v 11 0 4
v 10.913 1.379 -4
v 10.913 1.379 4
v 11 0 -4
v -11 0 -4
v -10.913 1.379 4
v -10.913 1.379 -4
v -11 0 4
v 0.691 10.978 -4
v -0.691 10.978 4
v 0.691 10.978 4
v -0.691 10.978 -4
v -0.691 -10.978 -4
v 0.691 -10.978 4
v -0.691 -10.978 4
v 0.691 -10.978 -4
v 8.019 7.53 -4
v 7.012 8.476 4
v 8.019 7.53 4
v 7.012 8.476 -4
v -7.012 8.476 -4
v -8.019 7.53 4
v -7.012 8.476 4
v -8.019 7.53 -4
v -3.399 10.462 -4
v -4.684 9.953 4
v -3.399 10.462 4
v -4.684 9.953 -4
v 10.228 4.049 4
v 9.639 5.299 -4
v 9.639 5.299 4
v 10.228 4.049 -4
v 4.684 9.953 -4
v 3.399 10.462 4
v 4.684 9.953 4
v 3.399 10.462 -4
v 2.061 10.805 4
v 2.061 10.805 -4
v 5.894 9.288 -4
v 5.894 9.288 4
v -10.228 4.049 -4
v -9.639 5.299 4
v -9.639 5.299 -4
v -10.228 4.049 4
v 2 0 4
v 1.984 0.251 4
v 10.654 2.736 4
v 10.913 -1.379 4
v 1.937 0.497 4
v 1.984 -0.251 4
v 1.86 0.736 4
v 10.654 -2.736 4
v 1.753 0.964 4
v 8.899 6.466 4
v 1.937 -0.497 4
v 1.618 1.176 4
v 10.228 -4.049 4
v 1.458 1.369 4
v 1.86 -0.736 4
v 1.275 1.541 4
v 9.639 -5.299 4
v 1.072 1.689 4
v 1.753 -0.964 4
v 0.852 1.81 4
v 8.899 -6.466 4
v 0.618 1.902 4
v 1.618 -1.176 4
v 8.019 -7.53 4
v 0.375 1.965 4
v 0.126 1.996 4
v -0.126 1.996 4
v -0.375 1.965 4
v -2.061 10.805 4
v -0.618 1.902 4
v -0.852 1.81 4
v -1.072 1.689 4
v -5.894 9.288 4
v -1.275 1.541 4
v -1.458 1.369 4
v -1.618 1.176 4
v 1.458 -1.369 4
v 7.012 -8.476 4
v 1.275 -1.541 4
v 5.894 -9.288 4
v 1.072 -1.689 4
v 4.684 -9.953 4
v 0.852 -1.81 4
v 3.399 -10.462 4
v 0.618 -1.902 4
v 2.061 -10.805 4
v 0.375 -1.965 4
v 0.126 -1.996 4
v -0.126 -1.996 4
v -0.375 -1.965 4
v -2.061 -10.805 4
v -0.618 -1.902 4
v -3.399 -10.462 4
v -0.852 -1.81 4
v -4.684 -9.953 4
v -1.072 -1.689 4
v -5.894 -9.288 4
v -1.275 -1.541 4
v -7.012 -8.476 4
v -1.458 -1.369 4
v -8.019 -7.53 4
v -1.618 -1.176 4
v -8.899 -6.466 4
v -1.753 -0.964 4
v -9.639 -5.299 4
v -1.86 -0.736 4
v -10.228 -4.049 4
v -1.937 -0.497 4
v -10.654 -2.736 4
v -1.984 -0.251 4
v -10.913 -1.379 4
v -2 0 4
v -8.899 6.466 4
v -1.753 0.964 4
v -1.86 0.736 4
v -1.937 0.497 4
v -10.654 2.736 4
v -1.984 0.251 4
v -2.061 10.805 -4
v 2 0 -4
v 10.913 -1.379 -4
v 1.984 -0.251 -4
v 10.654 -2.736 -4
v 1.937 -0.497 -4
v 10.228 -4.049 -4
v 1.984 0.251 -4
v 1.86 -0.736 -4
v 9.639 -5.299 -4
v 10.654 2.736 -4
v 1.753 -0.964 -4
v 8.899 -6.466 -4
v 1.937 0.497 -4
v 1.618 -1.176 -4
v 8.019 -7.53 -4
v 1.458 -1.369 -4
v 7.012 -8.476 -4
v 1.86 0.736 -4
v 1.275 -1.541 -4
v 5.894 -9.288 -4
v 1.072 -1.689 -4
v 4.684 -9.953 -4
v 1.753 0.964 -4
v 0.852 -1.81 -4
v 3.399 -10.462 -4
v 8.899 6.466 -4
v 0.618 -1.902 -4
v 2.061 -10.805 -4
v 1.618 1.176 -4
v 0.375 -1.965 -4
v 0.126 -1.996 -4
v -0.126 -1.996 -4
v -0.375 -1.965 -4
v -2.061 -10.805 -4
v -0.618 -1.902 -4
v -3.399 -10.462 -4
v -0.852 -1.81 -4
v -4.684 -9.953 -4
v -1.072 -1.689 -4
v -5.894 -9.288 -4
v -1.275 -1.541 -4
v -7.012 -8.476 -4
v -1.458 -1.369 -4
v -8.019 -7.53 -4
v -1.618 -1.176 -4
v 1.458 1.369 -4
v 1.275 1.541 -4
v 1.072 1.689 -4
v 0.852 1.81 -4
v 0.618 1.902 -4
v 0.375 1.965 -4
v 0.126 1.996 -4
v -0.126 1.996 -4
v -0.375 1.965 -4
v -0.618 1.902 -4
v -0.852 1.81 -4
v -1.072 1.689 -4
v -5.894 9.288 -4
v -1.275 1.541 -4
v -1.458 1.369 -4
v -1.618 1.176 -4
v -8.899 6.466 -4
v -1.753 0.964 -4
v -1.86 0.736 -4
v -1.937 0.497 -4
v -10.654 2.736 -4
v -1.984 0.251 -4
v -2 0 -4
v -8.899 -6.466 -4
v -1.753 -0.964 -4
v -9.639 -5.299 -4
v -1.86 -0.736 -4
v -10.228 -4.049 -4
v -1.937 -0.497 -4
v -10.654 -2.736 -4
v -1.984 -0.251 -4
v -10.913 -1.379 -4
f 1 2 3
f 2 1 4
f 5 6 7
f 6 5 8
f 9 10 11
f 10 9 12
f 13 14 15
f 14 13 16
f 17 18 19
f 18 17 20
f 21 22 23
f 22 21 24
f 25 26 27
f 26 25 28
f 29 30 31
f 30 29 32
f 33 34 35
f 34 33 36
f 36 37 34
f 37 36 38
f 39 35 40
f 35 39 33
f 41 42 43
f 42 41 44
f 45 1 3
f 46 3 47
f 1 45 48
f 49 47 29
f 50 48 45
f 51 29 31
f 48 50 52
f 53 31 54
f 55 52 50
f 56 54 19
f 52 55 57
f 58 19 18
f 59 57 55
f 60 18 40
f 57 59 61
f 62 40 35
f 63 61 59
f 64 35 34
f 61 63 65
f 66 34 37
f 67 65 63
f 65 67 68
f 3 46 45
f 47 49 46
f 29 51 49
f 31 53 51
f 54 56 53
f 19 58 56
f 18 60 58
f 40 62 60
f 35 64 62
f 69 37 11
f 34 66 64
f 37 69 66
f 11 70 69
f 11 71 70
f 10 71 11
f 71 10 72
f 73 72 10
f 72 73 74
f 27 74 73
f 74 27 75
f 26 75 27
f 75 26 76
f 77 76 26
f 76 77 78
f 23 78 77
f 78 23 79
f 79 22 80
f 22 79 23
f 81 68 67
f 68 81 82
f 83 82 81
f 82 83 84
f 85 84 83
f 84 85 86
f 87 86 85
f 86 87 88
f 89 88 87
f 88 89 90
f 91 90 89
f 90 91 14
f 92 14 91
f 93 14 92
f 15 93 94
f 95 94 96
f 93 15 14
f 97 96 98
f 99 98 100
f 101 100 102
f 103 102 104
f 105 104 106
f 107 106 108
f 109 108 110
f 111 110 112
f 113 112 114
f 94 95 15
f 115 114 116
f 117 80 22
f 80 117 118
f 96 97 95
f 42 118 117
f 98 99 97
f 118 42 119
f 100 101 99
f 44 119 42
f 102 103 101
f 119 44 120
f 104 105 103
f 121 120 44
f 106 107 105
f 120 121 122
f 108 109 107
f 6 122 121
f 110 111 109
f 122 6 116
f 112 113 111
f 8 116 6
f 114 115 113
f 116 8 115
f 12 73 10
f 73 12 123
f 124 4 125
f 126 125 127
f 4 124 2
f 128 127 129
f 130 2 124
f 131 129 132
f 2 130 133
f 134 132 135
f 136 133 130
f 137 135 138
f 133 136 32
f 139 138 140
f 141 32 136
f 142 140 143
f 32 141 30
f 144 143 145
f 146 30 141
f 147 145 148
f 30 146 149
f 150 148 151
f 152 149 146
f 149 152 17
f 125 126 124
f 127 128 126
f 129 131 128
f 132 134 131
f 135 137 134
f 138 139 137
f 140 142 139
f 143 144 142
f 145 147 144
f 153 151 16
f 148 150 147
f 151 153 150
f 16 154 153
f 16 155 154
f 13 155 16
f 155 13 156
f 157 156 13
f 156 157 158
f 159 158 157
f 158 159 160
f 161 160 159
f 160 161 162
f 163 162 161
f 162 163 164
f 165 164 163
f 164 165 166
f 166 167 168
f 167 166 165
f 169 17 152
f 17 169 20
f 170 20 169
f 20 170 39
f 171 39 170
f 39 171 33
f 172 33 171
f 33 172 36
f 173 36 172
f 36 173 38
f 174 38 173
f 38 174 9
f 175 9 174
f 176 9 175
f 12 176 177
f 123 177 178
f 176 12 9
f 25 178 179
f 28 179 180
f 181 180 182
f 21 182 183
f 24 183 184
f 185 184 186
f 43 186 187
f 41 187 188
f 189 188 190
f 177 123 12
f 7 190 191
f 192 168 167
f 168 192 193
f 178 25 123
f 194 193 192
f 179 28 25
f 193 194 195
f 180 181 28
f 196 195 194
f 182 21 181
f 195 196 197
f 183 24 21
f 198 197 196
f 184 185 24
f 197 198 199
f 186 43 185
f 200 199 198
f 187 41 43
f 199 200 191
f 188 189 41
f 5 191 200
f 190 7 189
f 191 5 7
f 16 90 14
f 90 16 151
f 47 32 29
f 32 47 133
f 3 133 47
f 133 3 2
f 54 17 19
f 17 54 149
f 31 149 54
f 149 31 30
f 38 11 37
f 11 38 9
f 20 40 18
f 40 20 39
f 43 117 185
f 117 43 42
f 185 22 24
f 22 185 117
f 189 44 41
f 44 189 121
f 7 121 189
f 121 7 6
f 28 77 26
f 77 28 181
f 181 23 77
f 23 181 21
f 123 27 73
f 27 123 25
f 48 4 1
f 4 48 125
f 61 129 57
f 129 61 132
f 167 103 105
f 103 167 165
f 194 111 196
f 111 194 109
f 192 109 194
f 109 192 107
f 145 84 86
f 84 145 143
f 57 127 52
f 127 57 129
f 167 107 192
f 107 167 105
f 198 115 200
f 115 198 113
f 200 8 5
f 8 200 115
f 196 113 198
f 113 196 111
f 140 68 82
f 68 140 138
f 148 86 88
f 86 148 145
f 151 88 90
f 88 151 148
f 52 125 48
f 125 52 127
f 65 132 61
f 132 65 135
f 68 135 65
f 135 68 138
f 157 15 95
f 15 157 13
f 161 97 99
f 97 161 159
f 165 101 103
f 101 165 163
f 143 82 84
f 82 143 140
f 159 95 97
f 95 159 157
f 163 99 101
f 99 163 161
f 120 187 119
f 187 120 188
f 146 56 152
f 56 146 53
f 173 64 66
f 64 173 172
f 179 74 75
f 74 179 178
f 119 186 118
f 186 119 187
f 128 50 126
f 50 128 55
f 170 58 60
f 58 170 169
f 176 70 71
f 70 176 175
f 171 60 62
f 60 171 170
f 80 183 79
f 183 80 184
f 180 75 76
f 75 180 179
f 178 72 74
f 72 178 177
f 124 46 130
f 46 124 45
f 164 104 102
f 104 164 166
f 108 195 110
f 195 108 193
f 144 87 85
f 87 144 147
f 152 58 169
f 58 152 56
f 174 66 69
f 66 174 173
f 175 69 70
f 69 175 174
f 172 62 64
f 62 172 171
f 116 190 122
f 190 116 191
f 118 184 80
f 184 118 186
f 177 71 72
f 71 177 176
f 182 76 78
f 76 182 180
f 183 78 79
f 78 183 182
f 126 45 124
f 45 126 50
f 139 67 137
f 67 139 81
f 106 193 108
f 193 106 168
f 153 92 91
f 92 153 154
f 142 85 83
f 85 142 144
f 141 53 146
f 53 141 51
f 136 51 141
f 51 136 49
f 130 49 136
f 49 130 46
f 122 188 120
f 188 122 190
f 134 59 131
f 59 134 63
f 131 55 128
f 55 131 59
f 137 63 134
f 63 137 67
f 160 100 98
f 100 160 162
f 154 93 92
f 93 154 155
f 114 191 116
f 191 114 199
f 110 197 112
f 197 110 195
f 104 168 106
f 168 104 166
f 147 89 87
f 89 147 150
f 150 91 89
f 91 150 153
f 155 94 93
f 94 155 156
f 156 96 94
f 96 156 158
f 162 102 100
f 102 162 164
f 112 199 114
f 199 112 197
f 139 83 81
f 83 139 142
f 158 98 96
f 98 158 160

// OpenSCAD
$fn = 50;


difference() {
	union() {
		translate(v = [0, 0, -4.0000000000]) {
			cylinder(h = 8, r = 11.0000000000);
		}
	}
	union() {
		translate(v = [0, 0, -100.0000000000]) {
			cylinder(h = 200, r = 2);
		}
	}
}
